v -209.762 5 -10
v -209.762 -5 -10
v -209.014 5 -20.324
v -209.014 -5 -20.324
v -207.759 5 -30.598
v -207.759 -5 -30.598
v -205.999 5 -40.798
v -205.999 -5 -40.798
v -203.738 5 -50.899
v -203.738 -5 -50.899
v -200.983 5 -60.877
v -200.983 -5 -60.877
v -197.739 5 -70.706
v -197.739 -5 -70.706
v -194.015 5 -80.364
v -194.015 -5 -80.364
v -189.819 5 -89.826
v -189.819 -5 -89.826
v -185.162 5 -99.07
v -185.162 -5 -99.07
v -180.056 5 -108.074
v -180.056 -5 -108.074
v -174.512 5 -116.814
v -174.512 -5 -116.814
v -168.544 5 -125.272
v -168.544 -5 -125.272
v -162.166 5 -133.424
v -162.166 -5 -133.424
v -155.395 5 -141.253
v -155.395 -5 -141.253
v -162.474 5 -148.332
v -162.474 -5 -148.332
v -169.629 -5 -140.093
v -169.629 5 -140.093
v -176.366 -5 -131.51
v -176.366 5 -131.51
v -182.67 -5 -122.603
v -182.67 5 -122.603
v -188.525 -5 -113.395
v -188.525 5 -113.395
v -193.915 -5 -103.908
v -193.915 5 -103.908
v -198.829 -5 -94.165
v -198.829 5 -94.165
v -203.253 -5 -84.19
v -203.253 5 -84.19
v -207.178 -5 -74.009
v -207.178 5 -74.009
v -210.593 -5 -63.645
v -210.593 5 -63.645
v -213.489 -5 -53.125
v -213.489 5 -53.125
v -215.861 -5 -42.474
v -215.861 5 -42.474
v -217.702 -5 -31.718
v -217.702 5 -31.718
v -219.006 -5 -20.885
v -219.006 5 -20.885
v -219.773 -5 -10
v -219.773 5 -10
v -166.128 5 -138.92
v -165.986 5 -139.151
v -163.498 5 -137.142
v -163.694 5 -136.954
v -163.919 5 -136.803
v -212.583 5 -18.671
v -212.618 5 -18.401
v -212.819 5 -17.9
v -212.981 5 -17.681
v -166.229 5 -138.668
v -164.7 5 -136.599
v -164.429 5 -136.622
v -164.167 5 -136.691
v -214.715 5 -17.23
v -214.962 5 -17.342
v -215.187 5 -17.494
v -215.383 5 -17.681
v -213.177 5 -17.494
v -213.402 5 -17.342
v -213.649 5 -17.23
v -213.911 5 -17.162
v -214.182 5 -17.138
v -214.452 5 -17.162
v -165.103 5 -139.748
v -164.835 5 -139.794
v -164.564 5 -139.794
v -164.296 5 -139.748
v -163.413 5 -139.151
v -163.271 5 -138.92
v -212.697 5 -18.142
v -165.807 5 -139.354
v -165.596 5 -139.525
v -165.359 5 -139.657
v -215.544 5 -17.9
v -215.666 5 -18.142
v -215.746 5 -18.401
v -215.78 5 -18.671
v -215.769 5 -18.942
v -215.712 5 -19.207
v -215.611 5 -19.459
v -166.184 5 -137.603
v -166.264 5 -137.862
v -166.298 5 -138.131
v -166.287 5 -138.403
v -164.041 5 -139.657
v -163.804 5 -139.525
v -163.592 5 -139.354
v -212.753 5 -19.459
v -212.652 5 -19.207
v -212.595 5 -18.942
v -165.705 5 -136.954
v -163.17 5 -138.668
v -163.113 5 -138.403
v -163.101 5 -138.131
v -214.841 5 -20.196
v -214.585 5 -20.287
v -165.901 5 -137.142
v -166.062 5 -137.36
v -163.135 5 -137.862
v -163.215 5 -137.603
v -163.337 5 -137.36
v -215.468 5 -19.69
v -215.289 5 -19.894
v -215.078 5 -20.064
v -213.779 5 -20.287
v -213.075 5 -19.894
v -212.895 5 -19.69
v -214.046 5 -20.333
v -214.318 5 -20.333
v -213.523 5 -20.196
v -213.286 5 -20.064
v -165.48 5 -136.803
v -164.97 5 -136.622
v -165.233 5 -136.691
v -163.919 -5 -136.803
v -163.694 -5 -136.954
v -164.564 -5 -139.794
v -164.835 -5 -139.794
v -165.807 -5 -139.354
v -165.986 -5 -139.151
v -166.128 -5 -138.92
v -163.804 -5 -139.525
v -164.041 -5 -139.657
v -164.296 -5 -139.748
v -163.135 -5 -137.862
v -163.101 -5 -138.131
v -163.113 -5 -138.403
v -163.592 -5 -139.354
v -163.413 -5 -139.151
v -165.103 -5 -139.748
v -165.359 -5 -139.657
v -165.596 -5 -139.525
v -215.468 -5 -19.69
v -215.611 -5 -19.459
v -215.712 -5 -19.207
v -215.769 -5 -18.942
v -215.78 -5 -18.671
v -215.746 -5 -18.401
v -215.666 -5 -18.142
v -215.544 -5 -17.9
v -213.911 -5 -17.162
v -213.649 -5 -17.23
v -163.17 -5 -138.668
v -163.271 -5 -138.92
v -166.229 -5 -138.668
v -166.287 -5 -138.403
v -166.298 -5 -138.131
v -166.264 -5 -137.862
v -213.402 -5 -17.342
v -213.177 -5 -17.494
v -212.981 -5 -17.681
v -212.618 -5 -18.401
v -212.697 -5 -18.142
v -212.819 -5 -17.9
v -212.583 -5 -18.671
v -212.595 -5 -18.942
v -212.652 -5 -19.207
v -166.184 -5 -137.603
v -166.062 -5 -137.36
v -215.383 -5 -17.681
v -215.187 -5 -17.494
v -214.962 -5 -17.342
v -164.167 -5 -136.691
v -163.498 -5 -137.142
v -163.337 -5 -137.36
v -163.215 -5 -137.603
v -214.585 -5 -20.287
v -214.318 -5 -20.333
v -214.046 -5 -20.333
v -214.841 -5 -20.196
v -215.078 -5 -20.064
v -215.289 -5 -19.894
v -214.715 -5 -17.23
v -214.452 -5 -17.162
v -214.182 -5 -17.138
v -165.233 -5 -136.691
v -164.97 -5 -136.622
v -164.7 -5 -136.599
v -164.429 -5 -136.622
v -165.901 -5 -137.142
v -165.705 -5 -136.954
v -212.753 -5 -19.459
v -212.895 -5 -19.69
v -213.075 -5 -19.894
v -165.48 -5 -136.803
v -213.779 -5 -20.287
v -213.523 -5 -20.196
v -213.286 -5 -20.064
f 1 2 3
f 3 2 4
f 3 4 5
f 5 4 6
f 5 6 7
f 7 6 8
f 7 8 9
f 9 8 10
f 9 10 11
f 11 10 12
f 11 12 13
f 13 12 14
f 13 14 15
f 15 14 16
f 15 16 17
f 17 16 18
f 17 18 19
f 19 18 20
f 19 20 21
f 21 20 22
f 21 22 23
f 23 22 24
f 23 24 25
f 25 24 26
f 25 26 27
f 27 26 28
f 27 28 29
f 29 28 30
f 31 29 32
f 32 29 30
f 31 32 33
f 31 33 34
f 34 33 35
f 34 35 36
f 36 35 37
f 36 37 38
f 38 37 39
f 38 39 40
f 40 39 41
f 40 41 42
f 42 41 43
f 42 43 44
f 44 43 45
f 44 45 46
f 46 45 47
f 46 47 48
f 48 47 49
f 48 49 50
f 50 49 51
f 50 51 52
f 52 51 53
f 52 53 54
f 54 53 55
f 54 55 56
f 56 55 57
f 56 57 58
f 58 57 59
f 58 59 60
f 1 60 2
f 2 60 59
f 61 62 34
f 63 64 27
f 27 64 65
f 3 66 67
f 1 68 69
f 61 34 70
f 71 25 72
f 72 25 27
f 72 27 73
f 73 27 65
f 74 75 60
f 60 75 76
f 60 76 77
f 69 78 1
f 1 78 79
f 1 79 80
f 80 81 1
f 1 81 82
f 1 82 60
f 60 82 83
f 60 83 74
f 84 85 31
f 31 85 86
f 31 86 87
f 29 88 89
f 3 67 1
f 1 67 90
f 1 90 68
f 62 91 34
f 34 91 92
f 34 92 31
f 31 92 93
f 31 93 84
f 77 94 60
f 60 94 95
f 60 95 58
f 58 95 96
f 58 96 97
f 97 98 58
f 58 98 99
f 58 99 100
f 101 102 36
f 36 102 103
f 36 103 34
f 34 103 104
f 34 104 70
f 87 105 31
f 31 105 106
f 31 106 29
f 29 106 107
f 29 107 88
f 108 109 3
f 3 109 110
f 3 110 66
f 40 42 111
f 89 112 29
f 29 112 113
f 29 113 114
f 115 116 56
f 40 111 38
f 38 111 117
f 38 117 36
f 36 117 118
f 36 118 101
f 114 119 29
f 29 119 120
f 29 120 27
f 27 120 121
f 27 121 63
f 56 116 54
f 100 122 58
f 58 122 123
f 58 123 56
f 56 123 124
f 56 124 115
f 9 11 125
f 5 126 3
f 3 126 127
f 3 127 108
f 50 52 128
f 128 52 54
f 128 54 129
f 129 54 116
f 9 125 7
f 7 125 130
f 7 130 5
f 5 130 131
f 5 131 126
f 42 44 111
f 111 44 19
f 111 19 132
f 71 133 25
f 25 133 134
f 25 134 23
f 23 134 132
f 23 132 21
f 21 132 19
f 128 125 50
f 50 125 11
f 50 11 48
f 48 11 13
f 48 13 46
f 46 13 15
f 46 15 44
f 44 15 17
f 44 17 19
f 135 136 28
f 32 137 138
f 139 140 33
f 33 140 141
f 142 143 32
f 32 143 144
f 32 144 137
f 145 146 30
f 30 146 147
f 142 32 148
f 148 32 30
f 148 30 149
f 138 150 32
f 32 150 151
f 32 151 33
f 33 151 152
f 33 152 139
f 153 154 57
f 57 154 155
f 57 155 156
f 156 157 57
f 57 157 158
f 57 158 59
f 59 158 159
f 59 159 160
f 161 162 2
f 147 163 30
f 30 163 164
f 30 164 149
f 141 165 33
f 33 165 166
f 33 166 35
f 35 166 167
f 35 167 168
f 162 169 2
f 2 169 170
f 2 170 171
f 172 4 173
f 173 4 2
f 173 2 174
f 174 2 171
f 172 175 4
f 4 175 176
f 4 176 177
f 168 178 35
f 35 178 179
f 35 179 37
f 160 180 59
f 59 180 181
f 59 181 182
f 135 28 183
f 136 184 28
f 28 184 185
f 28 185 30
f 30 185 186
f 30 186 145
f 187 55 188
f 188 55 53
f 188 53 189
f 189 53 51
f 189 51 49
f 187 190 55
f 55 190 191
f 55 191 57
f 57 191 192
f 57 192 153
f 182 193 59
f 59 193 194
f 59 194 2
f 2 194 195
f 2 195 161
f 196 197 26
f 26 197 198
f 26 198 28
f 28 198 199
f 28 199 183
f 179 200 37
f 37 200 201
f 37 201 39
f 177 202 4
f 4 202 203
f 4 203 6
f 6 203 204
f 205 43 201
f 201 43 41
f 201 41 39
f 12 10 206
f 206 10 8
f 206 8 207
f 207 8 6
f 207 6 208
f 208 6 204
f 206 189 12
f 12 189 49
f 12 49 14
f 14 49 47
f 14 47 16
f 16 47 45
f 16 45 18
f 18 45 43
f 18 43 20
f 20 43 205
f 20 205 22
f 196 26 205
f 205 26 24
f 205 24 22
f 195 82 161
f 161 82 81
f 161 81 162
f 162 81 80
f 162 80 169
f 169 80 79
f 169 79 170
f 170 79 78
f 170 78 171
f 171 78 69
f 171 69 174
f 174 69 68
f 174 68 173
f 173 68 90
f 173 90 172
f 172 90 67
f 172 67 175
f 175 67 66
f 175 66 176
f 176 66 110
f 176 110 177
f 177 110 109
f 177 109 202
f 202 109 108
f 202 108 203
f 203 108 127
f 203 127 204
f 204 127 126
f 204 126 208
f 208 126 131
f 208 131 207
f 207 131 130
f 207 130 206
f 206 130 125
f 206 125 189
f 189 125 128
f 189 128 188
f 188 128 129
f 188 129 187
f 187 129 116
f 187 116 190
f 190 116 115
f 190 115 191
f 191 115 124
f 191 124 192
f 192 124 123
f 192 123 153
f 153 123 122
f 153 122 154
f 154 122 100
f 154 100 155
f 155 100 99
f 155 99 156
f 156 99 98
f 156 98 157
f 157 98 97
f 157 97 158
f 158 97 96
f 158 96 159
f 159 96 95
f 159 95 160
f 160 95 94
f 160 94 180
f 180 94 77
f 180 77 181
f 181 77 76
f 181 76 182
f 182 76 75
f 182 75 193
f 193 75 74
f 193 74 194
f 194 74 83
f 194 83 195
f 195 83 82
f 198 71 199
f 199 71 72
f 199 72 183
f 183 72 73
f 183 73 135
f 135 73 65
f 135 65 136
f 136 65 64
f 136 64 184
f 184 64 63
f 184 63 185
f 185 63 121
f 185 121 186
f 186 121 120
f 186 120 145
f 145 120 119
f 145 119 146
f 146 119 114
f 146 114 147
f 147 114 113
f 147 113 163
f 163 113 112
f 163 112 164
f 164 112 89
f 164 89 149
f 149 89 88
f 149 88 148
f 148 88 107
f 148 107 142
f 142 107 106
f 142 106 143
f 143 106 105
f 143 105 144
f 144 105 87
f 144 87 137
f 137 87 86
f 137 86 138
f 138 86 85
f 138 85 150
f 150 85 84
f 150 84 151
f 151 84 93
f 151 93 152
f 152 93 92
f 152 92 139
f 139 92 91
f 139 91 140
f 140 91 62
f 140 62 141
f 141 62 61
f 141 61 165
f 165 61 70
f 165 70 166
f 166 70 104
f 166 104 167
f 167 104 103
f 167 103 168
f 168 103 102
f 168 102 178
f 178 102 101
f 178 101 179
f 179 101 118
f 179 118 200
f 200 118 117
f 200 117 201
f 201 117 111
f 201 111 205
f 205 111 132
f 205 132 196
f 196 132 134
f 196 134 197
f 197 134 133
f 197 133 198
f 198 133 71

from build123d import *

# Parameters (mm, degrees)
BASE_DEPTH                 = 5
F_3_2_3_2_DIAMETER_HOLE1_D = 3.2


with BuildPart() as part:
    # Sketch1 → base (new, symmetric)
    with BuildSketch(Plane(origin=(0, 0, 0), x_dir=(1, 0, 0), z_dir=(0, 1, 0))):
        with BuildLine():
            Line((-155.395037554, 141.25290193), (-162.473770491, 148.331634867))
            ThreePointArc((-162.473770491, 148.331634867), (-203.253497152, 84.19035512), (-219.772609758, 10))
            Line((-219.772609758, 10), (-209.761769634, 10))
            ThreePointArc((-209.761769634, 10), (-194.014701827, 80.363520797), (-155.395037554, 141.25290193))
        make_face()
    extrude(amount=BASE_DEPTH, both=True)

    # Ø3.2 (3.2) Diameter Hole1 (through all)
    with Locations(Plane(origin=(0, 5, 0), x_dir=(1, 0, 0), z_dir=(0, 1, 0))):
        with Locations((-164.699555271, 138.199336083), (-214.18186009, 18.738484691)):
            Hole(F_3_2_3_2_DIAMETER_HOLE1_D / 2)


solid = part.part
